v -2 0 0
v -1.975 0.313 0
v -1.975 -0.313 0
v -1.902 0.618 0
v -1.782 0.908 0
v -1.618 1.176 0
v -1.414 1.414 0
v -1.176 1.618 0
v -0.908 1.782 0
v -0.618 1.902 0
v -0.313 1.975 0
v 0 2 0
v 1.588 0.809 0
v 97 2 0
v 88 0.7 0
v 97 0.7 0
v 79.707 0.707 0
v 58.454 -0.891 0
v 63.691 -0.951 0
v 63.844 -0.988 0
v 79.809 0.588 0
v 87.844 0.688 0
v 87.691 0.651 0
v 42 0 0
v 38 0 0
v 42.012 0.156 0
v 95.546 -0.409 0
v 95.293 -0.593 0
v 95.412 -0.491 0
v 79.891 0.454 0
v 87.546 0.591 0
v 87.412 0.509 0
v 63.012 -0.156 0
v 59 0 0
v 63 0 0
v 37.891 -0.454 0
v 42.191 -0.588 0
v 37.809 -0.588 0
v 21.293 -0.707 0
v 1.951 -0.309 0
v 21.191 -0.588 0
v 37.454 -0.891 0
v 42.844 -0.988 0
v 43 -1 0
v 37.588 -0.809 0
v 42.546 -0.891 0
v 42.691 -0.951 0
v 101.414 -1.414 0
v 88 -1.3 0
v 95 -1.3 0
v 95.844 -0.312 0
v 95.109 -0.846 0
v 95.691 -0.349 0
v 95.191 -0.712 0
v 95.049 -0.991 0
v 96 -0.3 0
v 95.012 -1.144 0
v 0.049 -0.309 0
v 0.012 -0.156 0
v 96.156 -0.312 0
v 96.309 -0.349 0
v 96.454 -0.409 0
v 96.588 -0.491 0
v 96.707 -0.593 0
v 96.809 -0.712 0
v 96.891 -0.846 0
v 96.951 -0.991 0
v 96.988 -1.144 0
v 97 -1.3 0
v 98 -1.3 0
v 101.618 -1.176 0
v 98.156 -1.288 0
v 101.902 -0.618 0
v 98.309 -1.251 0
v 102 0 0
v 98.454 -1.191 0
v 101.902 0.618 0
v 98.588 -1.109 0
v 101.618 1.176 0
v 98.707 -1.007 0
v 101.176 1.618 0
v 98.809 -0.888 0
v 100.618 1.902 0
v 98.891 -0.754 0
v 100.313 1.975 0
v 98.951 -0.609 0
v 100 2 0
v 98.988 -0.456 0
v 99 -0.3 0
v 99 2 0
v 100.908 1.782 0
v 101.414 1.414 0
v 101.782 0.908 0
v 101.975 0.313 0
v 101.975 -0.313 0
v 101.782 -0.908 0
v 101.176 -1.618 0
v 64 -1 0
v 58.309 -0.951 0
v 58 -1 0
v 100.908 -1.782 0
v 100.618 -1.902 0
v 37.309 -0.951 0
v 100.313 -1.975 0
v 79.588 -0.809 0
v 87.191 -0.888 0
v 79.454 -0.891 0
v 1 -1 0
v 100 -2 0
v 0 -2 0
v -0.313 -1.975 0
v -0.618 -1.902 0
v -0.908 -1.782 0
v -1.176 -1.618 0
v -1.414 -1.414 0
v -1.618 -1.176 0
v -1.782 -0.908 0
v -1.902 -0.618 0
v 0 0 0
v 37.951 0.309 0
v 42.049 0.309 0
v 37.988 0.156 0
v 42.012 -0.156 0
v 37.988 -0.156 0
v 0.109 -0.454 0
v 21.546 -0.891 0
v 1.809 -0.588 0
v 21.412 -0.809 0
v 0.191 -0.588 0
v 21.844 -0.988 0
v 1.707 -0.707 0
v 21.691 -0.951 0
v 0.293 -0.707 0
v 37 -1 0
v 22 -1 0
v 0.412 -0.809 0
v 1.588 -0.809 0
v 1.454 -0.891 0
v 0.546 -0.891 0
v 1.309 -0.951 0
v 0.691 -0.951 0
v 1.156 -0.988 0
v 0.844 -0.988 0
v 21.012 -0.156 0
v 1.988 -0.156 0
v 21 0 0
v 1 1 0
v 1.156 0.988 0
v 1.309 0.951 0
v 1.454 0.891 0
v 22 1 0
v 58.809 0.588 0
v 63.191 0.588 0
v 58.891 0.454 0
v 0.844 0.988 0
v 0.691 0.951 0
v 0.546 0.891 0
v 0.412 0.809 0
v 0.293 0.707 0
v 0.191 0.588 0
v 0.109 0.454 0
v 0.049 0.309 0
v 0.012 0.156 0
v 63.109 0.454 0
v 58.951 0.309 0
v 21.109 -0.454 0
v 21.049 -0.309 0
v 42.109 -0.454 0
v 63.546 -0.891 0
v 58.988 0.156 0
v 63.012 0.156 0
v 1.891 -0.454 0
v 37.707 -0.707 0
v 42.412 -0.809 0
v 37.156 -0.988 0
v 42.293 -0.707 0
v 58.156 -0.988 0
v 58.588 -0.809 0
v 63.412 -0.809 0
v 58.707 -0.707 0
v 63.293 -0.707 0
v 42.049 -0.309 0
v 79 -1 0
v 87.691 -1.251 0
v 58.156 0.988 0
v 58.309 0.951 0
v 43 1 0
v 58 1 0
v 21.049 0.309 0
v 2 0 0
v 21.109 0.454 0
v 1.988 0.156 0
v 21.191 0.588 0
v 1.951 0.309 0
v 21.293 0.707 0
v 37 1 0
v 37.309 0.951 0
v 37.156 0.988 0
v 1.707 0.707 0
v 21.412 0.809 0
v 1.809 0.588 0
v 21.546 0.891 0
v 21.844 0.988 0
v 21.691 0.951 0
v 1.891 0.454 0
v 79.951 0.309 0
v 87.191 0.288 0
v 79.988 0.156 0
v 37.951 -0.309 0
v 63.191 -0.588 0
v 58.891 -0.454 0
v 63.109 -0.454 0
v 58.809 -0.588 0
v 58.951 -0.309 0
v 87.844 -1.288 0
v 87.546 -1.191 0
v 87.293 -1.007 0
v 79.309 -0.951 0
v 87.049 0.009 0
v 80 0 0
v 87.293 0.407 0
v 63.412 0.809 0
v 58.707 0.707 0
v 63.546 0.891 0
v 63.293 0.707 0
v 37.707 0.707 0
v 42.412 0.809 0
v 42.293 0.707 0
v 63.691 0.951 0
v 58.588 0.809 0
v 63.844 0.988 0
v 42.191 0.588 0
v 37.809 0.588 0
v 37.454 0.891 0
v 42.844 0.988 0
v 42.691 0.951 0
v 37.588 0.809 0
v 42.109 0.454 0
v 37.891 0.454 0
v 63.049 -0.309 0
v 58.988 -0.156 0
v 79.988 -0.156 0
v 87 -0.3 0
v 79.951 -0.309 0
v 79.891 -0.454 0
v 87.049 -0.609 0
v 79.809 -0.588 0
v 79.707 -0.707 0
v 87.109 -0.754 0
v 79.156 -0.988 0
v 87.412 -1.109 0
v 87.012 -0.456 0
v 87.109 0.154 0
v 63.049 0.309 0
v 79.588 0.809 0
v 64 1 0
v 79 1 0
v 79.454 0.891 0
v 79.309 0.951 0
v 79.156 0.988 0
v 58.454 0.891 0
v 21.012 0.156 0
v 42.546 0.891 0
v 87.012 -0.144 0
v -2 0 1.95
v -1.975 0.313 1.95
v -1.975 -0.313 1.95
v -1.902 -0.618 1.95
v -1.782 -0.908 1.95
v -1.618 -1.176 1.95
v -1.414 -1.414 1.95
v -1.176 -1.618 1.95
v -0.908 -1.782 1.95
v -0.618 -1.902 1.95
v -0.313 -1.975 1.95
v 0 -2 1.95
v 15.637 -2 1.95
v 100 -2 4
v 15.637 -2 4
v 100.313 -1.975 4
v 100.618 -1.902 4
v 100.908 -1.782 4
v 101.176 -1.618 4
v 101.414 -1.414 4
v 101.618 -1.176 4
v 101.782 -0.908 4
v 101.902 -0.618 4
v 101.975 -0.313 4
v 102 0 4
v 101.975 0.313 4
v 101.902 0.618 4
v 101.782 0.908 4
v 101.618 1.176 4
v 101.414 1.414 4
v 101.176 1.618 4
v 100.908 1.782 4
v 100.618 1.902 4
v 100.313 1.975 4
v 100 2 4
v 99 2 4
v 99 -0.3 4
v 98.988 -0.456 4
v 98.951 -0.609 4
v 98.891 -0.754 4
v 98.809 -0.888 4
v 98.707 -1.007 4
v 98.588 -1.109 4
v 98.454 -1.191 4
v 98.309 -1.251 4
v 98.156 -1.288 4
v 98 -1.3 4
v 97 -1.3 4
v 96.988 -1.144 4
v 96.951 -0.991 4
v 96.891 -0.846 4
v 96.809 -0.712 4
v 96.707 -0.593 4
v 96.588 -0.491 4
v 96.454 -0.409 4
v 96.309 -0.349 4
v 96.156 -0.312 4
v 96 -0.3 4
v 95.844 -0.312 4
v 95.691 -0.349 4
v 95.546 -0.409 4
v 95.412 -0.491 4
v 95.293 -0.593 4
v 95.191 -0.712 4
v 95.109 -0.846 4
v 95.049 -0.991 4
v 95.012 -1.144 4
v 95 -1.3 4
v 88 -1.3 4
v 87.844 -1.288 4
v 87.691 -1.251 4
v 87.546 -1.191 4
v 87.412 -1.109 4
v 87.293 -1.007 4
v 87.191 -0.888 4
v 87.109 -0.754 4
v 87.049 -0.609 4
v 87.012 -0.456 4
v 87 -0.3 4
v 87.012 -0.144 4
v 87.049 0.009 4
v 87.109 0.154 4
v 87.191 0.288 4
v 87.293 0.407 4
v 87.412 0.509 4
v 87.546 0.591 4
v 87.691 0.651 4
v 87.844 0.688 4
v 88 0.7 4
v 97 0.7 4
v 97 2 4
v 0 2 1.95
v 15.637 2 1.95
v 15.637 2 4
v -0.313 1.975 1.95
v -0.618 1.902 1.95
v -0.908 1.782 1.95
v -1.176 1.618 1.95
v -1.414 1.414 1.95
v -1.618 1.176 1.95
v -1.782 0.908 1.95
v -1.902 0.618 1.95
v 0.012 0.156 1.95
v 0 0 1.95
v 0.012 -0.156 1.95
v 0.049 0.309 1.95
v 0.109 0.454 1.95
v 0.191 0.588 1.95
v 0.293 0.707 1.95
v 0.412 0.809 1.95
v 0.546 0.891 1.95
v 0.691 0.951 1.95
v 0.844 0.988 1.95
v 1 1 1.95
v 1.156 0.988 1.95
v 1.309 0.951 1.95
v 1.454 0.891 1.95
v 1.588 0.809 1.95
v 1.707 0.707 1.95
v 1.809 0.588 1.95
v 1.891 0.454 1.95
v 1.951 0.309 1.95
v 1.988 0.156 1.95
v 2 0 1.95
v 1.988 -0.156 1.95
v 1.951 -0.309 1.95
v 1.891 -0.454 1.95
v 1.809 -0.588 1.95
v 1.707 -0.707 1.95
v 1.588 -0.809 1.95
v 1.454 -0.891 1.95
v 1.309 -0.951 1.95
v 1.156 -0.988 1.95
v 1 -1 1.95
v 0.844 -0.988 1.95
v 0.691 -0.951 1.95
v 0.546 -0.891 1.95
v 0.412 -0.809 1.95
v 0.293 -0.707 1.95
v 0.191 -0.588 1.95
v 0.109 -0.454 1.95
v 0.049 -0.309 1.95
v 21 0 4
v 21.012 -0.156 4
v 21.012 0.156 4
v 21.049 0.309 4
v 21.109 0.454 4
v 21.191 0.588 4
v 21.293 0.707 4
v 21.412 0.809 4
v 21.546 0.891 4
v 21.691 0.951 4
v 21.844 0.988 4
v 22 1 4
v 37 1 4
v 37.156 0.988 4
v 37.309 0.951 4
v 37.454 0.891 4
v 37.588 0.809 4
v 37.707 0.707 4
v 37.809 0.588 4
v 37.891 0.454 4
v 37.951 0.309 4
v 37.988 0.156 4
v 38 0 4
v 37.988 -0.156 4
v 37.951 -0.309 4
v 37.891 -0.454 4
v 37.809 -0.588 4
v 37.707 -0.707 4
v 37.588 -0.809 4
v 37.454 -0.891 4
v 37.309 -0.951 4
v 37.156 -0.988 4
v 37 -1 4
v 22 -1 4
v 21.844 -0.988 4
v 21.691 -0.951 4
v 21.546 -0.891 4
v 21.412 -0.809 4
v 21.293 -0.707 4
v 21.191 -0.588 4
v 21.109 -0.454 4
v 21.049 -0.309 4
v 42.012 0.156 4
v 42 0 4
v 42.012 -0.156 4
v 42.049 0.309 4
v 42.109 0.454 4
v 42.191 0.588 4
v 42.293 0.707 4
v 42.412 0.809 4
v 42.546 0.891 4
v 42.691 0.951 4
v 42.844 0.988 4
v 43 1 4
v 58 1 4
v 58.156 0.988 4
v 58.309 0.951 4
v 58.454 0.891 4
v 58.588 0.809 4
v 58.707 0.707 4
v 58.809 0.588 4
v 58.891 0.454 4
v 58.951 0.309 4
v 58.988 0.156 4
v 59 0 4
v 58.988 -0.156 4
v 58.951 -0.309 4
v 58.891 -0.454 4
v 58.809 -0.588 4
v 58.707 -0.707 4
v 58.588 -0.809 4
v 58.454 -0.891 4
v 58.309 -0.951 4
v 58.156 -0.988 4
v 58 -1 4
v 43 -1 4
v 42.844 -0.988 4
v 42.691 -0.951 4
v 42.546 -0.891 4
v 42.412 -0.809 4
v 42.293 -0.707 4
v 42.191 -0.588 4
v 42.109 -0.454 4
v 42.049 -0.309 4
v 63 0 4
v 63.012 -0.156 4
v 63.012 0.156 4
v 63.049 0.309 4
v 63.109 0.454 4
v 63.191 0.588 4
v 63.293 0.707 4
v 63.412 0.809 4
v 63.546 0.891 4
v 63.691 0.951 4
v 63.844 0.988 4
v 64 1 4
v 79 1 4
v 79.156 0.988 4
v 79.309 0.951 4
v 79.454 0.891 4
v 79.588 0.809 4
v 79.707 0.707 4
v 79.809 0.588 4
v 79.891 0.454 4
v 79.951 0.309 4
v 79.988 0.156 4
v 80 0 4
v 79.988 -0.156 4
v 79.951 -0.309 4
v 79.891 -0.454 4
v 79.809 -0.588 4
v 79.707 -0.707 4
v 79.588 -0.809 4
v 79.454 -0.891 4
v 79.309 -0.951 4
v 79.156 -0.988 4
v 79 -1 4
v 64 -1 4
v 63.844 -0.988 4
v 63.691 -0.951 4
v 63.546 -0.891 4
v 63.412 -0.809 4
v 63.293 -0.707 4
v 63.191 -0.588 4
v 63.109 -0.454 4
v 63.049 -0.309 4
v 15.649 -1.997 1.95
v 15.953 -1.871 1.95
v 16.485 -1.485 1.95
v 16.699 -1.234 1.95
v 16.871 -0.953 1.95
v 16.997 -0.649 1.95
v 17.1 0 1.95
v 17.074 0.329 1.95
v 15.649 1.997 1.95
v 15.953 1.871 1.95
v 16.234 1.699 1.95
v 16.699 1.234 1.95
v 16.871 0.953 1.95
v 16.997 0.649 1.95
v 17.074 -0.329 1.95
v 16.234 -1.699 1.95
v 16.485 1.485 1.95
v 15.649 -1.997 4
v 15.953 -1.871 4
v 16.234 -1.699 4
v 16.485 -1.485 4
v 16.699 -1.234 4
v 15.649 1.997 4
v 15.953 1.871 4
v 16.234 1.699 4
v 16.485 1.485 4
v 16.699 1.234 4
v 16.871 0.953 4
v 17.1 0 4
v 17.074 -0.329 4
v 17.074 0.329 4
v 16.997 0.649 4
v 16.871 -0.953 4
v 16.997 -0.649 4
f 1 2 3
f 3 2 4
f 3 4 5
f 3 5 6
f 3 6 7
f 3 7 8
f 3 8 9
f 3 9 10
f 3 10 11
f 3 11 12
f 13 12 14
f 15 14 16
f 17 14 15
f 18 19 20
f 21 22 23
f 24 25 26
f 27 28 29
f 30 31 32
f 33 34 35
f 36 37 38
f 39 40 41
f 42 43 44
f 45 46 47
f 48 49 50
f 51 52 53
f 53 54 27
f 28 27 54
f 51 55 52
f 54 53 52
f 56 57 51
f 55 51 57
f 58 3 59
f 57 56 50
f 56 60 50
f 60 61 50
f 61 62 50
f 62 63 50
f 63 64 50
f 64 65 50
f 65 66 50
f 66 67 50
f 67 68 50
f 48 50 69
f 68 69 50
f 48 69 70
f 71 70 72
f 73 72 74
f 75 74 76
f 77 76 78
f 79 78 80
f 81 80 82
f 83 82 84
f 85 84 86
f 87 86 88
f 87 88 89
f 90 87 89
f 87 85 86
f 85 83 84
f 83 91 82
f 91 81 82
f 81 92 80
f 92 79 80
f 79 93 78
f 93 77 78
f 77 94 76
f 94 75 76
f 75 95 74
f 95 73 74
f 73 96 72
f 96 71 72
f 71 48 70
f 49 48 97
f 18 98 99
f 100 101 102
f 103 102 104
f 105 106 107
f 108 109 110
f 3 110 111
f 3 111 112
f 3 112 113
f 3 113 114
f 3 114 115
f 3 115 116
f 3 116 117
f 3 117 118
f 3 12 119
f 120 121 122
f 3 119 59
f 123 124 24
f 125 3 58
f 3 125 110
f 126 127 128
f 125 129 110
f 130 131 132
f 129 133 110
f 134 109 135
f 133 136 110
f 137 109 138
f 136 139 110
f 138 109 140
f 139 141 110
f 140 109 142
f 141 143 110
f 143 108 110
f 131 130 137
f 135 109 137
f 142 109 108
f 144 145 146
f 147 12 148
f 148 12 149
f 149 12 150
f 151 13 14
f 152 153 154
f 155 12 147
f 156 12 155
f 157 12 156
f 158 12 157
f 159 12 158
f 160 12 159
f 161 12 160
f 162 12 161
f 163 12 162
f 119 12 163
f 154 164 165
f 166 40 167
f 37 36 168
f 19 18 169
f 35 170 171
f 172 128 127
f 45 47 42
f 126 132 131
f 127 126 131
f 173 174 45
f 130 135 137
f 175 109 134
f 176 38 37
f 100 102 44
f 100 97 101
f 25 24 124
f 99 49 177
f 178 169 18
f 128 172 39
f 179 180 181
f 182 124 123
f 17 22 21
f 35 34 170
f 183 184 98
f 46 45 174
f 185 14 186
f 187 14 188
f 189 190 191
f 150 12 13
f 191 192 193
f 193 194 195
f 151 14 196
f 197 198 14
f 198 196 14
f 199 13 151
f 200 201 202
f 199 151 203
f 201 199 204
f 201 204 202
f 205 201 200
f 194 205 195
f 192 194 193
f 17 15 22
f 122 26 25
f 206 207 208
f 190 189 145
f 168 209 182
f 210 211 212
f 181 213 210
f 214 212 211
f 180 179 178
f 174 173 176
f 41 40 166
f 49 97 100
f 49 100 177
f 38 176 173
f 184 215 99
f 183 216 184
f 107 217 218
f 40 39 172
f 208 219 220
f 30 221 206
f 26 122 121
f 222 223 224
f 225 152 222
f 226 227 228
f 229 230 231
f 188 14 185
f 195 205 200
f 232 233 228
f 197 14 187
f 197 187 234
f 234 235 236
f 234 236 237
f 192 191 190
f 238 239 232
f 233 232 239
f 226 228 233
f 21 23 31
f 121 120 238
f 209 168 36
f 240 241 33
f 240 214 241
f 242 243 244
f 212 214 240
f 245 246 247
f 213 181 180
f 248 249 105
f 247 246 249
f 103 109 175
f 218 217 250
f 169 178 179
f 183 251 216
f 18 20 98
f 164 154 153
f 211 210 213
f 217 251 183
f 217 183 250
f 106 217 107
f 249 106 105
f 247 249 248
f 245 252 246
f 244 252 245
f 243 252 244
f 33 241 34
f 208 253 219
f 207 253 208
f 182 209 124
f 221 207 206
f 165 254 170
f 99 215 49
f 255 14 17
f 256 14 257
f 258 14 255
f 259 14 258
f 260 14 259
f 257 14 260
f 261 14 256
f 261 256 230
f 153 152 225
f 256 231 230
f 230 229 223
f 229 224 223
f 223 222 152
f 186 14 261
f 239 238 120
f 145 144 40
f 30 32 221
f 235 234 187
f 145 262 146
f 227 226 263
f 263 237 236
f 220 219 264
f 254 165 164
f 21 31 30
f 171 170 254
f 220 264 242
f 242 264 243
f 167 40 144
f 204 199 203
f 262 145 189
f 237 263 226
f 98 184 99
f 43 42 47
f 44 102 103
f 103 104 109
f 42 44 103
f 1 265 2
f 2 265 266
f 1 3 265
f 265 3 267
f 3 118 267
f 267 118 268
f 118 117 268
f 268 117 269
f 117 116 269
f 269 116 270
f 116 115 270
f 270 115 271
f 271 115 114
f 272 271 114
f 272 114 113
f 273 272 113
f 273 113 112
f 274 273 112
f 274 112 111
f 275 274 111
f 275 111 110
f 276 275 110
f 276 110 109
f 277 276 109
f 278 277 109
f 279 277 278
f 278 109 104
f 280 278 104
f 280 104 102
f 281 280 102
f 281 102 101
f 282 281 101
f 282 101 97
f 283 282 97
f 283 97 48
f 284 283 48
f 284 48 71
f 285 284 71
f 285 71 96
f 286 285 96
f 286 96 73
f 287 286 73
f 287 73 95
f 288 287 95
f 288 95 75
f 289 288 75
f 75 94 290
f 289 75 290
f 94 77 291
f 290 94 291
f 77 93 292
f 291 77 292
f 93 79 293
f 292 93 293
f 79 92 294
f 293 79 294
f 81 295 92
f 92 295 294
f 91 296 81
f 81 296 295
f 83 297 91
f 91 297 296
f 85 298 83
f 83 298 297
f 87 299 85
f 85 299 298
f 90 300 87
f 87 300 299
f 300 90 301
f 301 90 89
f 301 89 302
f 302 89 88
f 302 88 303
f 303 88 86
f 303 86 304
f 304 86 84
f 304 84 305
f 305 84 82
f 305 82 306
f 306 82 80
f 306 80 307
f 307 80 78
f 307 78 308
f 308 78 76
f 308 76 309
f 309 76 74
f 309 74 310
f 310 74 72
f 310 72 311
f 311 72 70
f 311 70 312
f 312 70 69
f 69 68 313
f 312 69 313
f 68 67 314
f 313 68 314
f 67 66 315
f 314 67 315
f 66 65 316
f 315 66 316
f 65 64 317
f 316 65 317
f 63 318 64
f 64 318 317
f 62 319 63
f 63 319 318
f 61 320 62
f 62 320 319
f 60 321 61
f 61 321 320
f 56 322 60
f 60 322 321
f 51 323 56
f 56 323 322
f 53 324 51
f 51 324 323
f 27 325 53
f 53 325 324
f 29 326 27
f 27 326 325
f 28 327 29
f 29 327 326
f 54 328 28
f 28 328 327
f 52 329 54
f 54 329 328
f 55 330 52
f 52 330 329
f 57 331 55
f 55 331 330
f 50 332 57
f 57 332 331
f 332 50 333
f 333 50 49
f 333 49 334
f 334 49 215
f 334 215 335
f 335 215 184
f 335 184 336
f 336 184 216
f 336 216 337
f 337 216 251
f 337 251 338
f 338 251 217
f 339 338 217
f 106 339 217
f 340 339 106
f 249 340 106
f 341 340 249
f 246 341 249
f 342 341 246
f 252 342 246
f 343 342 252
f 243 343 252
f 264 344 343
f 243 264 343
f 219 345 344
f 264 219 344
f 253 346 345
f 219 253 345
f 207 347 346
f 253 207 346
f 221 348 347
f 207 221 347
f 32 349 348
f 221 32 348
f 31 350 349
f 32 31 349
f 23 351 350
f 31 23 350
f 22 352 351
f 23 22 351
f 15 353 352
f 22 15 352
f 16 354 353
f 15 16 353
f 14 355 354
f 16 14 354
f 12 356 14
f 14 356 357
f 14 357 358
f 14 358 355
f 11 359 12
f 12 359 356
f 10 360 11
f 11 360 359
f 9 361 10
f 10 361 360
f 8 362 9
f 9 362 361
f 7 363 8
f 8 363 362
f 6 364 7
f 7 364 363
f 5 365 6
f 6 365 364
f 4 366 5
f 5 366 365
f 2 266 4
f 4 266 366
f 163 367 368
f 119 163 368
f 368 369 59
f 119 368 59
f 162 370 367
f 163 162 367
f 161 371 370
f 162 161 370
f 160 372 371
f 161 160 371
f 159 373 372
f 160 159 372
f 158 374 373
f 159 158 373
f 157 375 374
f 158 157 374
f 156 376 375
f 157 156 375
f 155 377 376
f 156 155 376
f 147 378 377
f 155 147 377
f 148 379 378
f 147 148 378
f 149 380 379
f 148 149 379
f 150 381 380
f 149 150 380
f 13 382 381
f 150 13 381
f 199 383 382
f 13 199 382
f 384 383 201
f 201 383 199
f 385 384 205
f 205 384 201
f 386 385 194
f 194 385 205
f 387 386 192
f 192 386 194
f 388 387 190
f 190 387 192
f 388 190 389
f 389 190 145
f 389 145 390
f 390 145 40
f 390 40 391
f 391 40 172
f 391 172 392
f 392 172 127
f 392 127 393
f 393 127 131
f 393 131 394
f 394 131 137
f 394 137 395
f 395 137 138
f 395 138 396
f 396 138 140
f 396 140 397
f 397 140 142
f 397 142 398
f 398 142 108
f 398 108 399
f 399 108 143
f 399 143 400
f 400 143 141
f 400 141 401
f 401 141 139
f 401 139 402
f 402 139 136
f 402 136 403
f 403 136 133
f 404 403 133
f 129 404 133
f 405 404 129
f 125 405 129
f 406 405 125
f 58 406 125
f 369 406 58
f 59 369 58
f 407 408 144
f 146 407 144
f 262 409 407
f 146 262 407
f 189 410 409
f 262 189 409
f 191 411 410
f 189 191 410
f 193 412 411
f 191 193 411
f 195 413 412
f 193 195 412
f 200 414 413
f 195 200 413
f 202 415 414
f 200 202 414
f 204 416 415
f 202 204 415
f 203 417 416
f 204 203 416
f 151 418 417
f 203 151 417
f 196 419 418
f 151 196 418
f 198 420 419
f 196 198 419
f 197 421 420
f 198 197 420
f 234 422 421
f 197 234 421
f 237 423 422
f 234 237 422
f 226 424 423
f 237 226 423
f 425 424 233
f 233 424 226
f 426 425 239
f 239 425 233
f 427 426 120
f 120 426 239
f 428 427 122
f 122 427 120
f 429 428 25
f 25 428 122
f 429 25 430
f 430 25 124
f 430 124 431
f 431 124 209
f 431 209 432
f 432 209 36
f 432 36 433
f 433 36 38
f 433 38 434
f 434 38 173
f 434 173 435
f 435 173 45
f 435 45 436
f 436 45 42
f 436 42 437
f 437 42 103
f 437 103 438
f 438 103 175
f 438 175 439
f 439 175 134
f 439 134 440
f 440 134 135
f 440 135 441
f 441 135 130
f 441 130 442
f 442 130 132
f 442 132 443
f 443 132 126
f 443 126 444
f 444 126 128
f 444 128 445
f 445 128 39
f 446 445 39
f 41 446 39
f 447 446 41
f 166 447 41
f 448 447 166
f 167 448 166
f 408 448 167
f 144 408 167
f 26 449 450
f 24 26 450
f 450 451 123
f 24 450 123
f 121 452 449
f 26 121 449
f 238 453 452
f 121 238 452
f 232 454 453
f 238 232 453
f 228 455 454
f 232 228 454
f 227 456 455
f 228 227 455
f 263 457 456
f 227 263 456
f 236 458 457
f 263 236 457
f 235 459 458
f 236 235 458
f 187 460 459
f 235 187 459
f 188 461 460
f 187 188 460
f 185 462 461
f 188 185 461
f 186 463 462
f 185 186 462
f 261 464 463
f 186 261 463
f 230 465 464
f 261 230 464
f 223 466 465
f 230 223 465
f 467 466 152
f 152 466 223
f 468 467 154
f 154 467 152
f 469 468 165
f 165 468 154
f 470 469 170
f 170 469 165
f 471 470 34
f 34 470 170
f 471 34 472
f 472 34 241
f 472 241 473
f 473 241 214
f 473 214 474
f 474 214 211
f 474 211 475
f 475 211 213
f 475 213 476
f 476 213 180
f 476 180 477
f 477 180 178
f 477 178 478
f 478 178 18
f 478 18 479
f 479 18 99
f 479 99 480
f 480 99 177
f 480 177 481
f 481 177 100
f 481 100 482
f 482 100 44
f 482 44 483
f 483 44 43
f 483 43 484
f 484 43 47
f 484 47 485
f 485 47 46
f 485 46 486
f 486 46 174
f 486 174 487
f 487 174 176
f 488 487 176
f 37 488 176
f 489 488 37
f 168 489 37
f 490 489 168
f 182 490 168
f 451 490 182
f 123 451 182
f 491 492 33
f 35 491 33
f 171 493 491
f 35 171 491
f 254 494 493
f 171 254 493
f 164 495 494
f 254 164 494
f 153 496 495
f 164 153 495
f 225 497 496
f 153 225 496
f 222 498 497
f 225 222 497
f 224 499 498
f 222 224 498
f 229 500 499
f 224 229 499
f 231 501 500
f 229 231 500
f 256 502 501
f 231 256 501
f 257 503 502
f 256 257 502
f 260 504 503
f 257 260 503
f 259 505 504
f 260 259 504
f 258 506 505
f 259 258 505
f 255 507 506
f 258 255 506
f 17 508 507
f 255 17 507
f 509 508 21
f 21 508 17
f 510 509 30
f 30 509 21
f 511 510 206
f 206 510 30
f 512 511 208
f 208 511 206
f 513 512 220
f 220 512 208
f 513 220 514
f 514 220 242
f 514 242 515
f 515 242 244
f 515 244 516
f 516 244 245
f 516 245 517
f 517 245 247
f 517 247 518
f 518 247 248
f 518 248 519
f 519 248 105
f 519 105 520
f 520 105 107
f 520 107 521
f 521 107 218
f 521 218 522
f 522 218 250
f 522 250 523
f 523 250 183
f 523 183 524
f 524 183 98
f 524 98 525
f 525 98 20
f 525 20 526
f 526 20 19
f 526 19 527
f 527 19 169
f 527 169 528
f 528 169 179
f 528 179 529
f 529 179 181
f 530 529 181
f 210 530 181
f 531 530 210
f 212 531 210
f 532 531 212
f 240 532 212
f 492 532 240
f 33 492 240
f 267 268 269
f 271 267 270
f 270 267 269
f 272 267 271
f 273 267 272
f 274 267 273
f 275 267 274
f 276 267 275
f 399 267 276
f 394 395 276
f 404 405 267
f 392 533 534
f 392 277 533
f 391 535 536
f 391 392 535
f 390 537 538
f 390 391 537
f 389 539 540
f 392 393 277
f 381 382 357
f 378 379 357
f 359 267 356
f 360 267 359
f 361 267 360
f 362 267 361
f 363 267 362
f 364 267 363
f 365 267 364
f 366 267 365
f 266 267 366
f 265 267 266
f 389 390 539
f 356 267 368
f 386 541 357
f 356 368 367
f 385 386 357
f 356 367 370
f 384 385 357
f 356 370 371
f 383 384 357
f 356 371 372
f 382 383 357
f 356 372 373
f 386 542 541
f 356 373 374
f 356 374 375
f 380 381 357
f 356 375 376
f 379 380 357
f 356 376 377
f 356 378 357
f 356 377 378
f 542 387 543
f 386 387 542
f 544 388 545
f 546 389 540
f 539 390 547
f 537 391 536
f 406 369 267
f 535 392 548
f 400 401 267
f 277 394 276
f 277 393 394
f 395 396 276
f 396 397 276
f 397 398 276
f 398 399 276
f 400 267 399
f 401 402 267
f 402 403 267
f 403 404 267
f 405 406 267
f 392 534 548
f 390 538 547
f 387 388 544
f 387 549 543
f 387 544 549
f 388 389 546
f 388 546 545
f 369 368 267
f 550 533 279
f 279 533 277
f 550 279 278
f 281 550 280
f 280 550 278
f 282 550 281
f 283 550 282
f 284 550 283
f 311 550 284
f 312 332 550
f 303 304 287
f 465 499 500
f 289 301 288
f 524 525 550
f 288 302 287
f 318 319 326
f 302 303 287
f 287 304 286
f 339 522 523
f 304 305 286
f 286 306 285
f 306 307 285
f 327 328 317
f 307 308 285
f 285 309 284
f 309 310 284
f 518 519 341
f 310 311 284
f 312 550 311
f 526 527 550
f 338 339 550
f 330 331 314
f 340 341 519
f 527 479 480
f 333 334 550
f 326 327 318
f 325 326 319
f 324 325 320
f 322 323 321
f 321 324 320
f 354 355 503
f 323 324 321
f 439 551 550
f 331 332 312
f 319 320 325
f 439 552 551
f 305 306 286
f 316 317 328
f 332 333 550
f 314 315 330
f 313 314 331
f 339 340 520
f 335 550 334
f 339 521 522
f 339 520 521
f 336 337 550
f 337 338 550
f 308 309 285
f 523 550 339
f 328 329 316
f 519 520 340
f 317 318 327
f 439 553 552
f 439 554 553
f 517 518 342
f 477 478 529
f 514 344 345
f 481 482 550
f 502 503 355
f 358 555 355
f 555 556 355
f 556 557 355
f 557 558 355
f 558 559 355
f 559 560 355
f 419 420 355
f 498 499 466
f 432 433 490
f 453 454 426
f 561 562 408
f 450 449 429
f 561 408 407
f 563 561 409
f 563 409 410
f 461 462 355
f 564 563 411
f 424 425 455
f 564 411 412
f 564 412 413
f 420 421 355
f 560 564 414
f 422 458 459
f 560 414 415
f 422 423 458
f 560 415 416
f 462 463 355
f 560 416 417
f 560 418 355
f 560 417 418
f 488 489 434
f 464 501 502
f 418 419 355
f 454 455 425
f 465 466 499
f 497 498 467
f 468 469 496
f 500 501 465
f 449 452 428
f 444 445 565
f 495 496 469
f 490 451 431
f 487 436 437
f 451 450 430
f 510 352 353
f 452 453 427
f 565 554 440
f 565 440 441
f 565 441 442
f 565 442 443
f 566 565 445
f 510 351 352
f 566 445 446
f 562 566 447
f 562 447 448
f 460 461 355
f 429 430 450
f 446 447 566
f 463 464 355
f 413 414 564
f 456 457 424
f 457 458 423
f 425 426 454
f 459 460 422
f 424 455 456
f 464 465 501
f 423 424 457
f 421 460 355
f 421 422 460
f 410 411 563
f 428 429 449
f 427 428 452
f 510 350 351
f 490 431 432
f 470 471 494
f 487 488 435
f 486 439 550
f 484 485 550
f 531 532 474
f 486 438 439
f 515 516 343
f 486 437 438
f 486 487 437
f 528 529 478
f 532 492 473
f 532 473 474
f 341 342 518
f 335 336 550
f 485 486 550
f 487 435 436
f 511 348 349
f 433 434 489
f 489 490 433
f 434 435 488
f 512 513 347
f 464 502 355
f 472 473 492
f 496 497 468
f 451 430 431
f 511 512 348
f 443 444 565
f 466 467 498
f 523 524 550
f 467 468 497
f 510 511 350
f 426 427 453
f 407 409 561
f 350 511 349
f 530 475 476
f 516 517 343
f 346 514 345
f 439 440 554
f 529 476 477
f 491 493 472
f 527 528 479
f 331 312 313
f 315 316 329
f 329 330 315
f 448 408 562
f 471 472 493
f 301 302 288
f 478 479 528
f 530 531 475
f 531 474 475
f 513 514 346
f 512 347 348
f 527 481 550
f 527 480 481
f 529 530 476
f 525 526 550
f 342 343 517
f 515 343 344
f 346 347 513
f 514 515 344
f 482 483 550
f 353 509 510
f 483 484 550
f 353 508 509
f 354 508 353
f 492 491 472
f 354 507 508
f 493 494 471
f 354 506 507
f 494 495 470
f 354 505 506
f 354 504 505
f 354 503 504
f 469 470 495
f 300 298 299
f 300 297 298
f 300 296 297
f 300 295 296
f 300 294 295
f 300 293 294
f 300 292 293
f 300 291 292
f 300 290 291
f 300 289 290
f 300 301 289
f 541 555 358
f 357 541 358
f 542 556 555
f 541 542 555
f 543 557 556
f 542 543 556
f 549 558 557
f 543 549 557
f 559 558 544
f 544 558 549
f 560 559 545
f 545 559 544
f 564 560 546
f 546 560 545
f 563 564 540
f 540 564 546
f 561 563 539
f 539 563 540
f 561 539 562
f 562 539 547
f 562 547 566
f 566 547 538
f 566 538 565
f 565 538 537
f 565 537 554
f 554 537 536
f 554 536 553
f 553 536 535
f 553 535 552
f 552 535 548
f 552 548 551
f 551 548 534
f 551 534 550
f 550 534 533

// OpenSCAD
$fn = 40;





union() {

	difference() {
		hull() {
			translate([100,0,0]) cylinder(h = 4, r=2);
			translate([0,0,0]) cylinder(h = 4, r=2);
		}

		translate([0,0,1.95]) slit(15,2.1);		

		union() { // screw hols
			// translate([13,0,-0.5]) cylinder(h = 6, r=2/2);
			translate([1,0,-0.5]) cylinder(h = 6, r=2/2);	
		}

		translate([100,0.2,0])
		rotate(a=[0,0,180])
		union() {
			translate([2,0.5,0]) 
				hull() {
					translate([0,-5,-1]) cylinder(h = 6, r=1);
					translate([0,0,-1]) cylinder(h = 6, r=1);
				}

			translate([2,0.5,0]) {
				difference() {
					hull() {
						translate([0,0,-1]) cylinder(h = 6, r=1);
						translate([10,0,-1]) cylinder(h = 6, r=1);
					}

					translate([2,1,-1]) cylinder(h = 6, r=1);
				}
			}			
		}

		translate([2,0,0])
		union() {
			translate([20,0,-1])  {
				slit(15,1);
			}

			translate([41,0,-1])  {
				slit(15,1);
			}	

			translate([62,0,-1])  {
				slit(15,1);
			}	
		}

		
	}

}


module slit(length,radius) {
	hull() {
		translate([length,0,0]) cylinder(h = 6, r=radius);
		translate([0,0,0]) cylinder(h = 6, r=radius);
	}
}
